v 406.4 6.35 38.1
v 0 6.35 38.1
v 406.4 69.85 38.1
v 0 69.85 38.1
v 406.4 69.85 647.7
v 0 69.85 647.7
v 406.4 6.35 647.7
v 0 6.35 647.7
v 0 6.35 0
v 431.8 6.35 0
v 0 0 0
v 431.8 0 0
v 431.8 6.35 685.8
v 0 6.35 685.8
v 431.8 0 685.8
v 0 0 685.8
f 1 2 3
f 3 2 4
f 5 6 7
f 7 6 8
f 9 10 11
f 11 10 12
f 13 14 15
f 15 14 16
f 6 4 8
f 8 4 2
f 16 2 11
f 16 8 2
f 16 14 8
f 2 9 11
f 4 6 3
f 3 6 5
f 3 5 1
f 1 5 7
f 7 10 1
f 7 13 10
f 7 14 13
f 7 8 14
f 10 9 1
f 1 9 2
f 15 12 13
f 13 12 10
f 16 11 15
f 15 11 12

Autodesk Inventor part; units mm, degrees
ref_plane "YZ Plane" through (0, 0, 0) normal (1, 0, 0) x (0, 1, 0)
ref_plane "XZ Plane" through (0, 0, 0) normal (0, 1, 0) x (-1, 0, 0)
ref_plane "XY Plane" through (0, 0, 0) normal (0, 0, 1) x (1, 0, 0)
sketch "Sketch1" plane through (0, 0, 0) normal (0, 0, 1) x (1, 0, 0)
  line L0 (0, 0) -> (431.8, 0)
  line L1 (406.4, 69.85) -> (0, 69.85)
  line L2 (0, 69.85) -> (0, 0)
  line L3 (406.4, 69.85) -> (406.4, 6.35)
  line L4 (406.4, 6.35) -> (431.8, 6.35)
  line L5 (431.8, 6.35) -> (431.8, 0)
  dimension "d0" = 69.85
  dimension "d1" = 431.8
  dimension "d2" = 6.35
  dimension "d3" = 25.4
extrude "Extrusion1" add sketch "Sketch1" along normal blind 685.8
sketch "Sketch2" plane through (0, 0, 0) normal (-1, 0, 0) x (0, 0, 1)
  line L0 (0, 0) -> (685.8, 0) projected
  line L1 (685.8, 69.85) -> (647.7, 69.85)
  line L2 (647.7, 69.85) -> (647.7, 6.35)
  line L3 (647.7, 6.35) -> (685.8, 6.35)
  line L4 (685.8, 6.35) -> (685.8, 69.85)
  line L5 (0, 69.85) -> (38.1, 69.85)
  line L6 (38.1, 69.85) -> (38.1, 6.35)
  line L7 (38.1, 6.35) -> (0, 6.35)
  line L8 (0, 6.35) -> (0, 69.85)
  dimension "d6" = 6.35
  dimension "d7" = 38.1
extrude "Extrusion2" cut sketch "Sketch2" against normal through all
properties part number "ElectronicsVolume"
